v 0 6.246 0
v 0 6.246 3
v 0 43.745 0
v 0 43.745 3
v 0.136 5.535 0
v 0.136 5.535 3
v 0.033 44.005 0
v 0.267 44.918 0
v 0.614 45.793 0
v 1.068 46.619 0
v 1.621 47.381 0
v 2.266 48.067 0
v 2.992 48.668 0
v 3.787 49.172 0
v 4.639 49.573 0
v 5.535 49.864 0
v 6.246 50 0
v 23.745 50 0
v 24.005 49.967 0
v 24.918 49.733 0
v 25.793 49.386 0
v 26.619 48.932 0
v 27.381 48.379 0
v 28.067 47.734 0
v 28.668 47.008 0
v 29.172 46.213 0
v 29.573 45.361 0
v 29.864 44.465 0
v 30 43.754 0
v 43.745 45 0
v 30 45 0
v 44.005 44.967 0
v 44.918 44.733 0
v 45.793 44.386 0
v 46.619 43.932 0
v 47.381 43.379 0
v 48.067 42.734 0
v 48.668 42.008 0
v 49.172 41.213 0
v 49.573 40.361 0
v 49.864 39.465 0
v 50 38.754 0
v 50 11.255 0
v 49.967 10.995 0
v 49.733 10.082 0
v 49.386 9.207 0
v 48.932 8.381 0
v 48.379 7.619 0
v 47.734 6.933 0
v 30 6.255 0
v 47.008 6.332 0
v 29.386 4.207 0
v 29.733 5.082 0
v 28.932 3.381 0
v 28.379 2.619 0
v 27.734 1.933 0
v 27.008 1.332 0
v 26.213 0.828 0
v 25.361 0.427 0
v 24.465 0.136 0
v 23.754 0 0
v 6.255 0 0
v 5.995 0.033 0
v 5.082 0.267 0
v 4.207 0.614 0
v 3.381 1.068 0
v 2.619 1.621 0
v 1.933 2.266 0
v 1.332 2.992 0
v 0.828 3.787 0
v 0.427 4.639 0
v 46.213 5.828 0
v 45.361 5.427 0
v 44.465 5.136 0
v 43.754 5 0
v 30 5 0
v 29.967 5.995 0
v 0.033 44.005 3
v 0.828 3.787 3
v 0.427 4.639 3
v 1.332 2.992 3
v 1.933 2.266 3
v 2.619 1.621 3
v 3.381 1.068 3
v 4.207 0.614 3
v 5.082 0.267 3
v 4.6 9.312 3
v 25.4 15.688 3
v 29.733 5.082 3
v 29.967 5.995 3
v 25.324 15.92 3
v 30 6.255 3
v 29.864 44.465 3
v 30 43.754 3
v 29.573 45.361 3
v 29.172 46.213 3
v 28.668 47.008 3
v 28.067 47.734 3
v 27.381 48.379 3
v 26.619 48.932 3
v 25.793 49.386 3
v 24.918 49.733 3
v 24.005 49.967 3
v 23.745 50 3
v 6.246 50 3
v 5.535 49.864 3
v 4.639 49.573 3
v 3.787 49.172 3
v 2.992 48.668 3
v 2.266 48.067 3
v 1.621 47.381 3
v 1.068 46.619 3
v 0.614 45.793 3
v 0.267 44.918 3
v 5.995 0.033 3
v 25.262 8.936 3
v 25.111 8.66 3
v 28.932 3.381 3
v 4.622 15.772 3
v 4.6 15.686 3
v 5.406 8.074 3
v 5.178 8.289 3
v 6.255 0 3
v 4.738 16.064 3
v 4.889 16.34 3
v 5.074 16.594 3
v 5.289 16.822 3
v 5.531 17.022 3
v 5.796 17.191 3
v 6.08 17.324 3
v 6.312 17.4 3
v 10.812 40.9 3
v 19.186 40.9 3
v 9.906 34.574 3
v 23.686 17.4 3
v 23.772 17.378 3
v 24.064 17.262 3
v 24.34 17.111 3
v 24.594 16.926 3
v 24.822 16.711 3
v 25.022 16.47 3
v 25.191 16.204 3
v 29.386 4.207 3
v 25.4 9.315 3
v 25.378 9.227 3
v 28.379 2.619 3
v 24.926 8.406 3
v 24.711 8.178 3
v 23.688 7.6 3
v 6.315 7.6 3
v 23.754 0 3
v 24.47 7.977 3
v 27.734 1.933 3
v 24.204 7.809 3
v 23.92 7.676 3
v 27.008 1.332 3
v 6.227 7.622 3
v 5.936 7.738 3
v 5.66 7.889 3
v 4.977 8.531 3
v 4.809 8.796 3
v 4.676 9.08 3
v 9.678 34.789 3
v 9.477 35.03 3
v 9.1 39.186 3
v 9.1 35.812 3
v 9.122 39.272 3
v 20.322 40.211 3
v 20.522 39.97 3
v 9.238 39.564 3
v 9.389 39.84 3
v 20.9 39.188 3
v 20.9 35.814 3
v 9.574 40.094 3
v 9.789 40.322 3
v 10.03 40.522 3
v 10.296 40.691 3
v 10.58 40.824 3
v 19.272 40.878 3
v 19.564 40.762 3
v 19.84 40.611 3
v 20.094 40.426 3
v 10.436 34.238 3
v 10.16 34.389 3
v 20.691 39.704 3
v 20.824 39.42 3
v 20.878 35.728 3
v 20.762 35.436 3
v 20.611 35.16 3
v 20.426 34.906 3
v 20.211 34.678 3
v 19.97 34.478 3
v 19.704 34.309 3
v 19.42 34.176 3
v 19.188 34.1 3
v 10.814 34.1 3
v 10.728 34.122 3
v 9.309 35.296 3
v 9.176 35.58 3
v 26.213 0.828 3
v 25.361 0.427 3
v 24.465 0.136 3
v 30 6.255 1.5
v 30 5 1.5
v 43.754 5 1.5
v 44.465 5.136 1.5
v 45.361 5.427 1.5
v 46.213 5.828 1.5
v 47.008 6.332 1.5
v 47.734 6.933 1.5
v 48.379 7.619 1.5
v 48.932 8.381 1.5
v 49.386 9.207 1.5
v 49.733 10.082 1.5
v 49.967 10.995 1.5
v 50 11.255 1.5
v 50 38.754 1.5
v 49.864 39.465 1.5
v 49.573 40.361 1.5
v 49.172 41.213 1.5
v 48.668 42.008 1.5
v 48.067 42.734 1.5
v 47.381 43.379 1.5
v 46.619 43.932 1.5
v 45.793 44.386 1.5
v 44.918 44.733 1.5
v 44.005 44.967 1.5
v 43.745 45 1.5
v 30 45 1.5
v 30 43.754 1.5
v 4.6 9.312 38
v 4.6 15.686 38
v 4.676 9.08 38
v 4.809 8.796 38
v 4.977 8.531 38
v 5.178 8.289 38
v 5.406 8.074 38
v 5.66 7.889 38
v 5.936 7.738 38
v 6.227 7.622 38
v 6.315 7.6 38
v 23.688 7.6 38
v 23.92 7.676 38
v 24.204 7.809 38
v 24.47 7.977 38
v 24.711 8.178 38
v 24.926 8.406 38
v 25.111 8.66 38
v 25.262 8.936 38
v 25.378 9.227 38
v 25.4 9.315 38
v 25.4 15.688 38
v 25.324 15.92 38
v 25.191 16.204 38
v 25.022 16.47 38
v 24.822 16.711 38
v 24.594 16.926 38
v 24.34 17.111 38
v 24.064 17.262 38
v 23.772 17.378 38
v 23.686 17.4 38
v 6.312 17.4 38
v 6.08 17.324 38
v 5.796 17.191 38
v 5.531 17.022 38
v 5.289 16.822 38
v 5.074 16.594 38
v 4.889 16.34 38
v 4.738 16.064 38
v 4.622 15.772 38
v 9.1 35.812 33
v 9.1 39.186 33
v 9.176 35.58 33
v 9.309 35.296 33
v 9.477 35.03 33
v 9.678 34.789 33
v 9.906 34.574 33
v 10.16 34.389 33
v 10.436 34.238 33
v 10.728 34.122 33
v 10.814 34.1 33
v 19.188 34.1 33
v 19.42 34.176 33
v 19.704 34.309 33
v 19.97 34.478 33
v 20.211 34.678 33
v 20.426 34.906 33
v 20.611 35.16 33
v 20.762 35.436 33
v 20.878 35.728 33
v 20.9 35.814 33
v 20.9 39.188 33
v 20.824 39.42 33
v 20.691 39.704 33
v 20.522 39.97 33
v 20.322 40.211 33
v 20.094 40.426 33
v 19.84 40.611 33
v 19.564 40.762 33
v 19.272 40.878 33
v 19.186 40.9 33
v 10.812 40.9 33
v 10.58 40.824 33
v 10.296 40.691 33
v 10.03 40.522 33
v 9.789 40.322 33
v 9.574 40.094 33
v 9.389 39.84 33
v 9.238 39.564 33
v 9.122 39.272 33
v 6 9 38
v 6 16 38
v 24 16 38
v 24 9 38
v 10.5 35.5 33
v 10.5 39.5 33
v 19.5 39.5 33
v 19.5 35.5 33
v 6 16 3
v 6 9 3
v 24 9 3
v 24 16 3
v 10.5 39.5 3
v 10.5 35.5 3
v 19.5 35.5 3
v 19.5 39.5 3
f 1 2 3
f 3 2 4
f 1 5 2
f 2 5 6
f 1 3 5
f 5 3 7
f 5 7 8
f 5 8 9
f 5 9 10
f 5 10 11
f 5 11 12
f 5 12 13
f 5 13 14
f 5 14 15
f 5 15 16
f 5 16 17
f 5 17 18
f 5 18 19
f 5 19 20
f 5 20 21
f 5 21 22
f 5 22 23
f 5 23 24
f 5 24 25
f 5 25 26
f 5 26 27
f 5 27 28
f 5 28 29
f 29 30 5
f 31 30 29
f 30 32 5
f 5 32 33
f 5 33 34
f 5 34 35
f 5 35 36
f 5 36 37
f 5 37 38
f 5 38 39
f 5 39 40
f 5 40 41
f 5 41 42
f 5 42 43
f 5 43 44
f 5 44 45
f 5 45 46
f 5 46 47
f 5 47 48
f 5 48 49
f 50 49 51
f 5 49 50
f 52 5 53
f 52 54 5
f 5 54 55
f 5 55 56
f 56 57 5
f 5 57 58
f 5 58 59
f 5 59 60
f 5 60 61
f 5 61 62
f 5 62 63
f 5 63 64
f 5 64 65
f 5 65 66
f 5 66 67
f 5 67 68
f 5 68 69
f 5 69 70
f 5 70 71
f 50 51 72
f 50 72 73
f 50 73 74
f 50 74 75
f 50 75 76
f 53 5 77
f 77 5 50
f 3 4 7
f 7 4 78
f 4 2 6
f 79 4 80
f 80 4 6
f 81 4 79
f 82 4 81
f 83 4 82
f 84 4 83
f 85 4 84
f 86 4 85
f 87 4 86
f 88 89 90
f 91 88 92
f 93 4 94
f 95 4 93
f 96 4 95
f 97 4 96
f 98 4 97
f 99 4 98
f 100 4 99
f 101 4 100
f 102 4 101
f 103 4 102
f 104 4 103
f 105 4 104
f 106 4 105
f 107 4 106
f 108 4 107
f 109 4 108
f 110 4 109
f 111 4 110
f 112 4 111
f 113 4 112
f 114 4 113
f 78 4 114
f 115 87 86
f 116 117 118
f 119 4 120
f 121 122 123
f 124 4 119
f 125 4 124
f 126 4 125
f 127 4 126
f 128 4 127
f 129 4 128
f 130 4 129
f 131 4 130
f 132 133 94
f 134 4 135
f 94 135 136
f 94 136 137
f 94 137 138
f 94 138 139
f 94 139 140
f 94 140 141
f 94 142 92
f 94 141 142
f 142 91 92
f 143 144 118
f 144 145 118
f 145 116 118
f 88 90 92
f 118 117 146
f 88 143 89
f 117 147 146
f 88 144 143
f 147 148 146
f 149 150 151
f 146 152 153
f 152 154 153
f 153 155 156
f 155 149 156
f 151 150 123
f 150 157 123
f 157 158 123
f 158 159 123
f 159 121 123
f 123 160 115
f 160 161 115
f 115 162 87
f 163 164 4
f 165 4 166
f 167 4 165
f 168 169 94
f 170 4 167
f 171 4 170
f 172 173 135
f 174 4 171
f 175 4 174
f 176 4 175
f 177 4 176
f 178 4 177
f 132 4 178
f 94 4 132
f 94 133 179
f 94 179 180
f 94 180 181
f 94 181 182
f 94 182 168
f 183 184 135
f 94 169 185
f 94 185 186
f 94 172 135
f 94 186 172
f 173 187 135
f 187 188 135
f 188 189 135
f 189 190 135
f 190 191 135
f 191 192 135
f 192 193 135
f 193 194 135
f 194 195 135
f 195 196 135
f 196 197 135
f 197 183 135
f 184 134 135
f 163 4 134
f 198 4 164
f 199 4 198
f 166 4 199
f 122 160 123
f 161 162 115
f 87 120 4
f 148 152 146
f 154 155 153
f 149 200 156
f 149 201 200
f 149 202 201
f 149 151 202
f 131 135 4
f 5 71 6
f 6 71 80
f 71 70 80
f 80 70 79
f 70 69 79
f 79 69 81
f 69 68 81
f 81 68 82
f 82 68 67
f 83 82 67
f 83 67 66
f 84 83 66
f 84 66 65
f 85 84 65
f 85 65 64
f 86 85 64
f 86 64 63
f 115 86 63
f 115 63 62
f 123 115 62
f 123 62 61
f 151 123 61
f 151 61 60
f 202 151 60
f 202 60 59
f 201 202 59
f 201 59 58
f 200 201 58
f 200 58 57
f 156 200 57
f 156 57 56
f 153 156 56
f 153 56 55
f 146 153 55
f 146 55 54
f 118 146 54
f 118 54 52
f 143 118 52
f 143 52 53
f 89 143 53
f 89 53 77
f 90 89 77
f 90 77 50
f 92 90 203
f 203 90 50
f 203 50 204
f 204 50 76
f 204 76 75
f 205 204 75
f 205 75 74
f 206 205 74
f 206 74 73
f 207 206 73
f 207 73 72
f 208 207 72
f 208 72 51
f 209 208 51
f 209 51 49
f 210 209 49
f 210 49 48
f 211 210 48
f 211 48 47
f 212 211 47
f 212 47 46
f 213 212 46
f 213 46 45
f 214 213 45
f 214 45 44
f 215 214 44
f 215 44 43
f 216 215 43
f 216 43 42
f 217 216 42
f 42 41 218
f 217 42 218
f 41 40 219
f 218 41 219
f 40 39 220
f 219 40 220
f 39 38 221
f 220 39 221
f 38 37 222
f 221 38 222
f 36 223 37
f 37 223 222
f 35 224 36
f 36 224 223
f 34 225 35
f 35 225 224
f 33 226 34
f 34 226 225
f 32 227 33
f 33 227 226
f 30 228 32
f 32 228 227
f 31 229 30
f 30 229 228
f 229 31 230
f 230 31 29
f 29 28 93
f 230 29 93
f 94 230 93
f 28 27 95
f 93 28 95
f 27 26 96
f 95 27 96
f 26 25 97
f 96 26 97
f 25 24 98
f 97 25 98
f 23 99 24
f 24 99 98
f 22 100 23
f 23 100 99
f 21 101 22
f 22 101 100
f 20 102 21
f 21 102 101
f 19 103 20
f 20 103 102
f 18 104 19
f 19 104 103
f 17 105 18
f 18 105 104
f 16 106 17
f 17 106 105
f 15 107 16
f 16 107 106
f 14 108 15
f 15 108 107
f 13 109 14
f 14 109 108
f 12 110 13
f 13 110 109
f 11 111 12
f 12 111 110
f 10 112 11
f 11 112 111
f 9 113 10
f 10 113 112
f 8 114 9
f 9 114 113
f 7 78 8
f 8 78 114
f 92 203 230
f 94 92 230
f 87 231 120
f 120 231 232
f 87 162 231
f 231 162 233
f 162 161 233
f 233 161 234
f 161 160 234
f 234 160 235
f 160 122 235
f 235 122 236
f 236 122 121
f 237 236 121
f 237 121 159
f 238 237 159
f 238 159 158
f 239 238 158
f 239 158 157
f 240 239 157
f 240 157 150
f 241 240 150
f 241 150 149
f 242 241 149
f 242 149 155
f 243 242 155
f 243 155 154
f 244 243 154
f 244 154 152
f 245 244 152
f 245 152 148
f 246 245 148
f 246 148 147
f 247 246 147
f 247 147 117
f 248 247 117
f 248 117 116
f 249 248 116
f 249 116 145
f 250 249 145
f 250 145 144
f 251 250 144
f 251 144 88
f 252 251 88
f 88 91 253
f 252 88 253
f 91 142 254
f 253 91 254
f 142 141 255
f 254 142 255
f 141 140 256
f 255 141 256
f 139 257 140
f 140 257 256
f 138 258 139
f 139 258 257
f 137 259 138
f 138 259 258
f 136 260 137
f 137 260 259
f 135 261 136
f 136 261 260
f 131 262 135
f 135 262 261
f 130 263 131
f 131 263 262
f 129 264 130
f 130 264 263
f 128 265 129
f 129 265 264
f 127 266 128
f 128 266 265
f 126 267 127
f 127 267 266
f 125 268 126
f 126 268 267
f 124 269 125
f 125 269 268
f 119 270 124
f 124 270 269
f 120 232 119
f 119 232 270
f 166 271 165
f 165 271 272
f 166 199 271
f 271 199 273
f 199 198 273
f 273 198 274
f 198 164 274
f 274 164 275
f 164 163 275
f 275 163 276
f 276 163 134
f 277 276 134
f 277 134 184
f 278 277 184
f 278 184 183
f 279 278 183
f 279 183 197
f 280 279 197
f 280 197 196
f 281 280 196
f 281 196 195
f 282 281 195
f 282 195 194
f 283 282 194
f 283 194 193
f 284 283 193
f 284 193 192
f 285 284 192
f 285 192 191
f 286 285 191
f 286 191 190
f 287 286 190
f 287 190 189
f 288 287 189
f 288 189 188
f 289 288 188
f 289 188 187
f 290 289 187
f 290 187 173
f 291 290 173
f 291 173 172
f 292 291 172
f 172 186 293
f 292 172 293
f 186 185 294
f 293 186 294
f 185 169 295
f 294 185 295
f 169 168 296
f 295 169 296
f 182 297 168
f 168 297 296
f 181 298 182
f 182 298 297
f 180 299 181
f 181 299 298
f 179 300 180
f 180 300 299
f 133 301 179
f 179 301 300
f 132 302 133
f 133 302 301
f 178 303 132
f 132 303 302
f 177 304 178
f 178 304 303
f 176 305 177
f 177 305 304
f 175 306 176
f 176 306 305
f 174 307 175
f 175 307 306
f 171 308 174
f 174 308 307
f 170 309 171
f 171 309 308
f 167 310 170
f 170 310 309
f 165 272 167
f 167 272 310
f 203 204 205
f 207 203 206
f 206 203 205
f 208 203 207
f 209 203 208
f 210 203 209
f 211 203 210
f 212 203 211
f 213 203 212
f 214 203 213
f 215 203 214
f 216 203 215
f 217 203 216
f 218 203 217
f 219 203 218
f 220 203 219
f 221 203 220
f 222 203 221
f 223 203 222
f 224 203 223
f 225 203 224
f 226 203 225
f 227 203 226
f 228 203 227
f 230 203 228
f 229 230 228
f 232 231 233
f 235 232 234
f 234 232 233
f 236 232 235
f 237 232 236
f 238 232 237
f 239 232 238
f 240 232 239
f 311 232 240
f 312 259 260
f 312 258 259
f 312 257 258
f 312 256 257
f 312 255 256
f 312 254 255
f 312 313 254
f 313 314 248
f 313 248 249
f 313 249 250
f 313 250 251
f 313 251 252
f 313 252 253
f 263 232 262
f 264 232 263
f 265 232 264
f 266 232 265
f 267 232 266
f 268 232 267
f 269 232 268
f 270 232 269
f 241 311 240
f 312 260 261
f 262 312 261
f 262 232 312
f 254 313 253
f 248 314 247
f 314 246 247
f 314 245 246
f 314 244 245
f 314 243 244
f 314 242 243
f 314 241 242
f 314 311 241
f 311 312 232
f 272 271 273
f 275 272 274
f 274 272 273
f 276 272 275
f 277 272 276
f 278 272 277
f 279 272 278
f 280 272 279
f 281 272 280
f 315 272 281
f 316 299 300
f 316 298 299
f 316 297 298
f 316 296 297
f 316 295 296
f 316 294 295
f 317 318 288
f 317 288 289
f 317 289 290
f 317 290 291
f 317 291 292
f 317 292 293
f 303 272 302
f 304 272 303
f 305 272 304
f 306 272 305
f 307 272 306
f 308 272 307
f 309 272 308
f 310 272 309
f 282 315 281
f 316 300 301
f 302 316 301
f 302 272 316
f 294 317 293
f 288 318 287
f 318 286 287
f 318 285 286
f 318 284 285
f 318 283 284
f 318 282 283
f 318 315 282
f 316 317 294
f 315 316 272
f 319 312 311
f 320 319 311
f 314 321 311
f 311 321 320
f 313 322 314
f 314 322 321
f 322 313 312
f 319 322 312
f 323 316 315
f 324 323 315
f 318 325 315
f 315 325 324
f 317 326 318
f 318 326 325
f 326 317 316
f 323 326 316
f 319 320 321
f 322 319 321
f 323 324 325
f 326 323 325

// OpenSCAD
// file: libs/rounded_corners.scad
// Round Corners
// author: Bradley Jones

$fn=50;

// Makes the cut out required to diff with the cube
module cut_out(radius, height) {
	translate([-radius/2,-radius/2,height/2]) 
	difference() {
		translate([radius/4,radius/4,0]) cube([radius/2, radius/2, height], center=true);
		cylinder(height, d=radius, center=true);
	}
}

// corners=[(0,0),(1,0),(0,1),(1,1)]
module rounded_cube(width, length, height, radius, corners=[true,true,true,true]) {
	difference() {
		cube([width, length, height]);
		// Starting with corner at 0,0 then working anti-clockwise
		if (corners[0]==true) 
			translate([-0.1,-0.1,0]) rotate([0,0,180]) cut_out(radius, height);
		if (corners[1]==true) 
			translate([width + 0.1,-0.1,0]) rotate([0,0,270]) cut_out(radius, height);
		if (corners[2]==true) 
			translate([width + 0.1,length+0.1,0]) rotate([0,0,0]) cut_out(radius, height);
		if (corners[3]==true) 
			translate([-0.1,length + 0.1,0]) rotate([0,0,90]) cut_out(radius, height);

	}
}
// main file
$fn = 50;

use <libs/rounded_corners.scad>;

base_length = 50;
base_width = 30;
base_height = 3;

generate_tab = true;
tab_side = "right";
tab_length = 40;
tab_width = 20;
tab_height = 1.5;
tab_offset = 5;

module tool_hold_rectangle(tool_width, tool_depth, height, wall_width = 2.8) {
	translate([-tool_width/2,-tool_depth/2,0])
	difference() {
		translate([-wall_width/2,-wall_width/2,0]) rounded_cube(tool_width + wall_width, tool_depth + wall_width, height, 5);
		cube([tool_width, tool_depth, height]);
	}
}

module evenly_space_along_base() {
	move_amount = (base_length/$children);
	for(i = [0:$children - 1]) {
		translate([base_width/2, i*move_amount + move_amount/2, base_height]) children(i);
	}
}

module tab() {
	if (tab_side == "right") {
		translate([base_width,base_length - tab_length - tab_offset,0]) rounded_cube(tab_width, tab_length, tab_height, 15, [false, true, true, false]);
	} else {
		translate([-tab_width,base_length - tab_length - tab_offset,0]) rounded_cube(tab_width, tab_length, tab_height, 15, [false, true, true, false]);
	}
}

module base() {	
	rounded_cube(base_width, base_length, base_height, 15);
}


union() {
	base();
	if (generate_tab == true) tab();
	evenly_space_along_base() {
		tool_hold_rectangle(18,7, 35);
		tool_hold_rectangle(9,4, 30);
	}
}
